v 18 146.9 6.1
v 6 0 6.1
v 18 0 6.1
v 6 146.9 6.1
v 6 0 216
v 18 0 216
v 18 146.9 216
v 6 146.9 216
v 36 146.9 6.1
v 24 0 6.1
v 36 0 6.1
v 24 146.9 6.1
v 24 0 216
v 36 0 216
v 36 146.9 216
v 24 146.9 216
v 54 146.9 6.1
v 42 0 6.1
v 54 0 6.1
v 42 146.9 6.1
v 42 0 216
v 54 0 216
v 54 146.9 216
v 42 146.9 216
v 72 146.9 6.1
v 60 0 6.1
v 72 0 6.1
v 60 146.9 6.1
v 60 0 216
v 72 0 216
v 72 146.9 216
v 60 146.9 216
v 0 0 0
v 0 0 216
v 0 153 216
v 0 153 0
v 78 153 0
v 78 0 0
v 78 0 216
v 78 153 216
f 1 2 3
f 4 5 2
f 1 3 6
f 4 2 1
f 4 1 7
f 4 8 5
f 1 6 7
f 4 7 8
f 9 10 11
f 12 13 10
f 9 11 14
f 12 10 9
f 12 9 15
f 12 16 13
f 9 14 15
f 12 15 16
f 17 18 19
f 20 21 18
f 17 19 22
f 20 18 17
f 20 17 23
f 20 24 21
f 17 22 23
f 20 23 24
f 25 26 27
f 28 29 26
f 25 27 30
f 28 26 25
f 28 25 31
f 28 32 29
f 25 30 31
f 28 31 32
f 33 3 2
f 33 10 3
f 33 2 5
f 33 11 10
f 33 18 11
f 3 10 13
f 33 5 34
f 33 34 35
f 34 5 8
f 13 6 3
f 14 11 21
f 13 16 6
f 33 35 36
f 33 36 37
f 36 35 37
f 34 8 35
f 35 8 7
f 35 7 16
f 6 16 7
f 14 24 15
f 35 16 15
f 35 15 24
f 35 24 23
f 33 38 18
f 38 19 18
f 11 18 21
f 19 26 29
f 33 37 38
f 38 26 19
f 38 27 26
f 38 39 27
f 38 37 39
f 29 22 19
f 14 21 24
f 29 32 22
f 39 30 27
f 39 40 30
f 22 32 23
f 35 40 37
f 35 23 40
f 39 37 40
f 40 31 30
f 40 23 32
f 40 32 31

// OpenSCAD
$fn=256;
wall=6;
notebook_width=12;
notebook_length=147;
notebook_height=210;
count=4;

module notebook() {
  cube([12, 147, 210]);
}

module stand() {
  cube([notebook_width * count + wall * (count + 1), notebook_length + wall, notebook_height + wall]);
}

module notebooks() {
  translate([wall, -0.1, wall + 0.1]) notebook();
  translate([notebook_width + wall * 2, -0.1, wall + 0.1]) notebook();
  translate([notebook_width + wall * 5, -0.1, wall + 0.1]) notebook();
  translate([notebook_width + wall * 8, -0.1, wall + 0.1]) notebook();
}

difference() {
  stand();
  notebooks();
}
